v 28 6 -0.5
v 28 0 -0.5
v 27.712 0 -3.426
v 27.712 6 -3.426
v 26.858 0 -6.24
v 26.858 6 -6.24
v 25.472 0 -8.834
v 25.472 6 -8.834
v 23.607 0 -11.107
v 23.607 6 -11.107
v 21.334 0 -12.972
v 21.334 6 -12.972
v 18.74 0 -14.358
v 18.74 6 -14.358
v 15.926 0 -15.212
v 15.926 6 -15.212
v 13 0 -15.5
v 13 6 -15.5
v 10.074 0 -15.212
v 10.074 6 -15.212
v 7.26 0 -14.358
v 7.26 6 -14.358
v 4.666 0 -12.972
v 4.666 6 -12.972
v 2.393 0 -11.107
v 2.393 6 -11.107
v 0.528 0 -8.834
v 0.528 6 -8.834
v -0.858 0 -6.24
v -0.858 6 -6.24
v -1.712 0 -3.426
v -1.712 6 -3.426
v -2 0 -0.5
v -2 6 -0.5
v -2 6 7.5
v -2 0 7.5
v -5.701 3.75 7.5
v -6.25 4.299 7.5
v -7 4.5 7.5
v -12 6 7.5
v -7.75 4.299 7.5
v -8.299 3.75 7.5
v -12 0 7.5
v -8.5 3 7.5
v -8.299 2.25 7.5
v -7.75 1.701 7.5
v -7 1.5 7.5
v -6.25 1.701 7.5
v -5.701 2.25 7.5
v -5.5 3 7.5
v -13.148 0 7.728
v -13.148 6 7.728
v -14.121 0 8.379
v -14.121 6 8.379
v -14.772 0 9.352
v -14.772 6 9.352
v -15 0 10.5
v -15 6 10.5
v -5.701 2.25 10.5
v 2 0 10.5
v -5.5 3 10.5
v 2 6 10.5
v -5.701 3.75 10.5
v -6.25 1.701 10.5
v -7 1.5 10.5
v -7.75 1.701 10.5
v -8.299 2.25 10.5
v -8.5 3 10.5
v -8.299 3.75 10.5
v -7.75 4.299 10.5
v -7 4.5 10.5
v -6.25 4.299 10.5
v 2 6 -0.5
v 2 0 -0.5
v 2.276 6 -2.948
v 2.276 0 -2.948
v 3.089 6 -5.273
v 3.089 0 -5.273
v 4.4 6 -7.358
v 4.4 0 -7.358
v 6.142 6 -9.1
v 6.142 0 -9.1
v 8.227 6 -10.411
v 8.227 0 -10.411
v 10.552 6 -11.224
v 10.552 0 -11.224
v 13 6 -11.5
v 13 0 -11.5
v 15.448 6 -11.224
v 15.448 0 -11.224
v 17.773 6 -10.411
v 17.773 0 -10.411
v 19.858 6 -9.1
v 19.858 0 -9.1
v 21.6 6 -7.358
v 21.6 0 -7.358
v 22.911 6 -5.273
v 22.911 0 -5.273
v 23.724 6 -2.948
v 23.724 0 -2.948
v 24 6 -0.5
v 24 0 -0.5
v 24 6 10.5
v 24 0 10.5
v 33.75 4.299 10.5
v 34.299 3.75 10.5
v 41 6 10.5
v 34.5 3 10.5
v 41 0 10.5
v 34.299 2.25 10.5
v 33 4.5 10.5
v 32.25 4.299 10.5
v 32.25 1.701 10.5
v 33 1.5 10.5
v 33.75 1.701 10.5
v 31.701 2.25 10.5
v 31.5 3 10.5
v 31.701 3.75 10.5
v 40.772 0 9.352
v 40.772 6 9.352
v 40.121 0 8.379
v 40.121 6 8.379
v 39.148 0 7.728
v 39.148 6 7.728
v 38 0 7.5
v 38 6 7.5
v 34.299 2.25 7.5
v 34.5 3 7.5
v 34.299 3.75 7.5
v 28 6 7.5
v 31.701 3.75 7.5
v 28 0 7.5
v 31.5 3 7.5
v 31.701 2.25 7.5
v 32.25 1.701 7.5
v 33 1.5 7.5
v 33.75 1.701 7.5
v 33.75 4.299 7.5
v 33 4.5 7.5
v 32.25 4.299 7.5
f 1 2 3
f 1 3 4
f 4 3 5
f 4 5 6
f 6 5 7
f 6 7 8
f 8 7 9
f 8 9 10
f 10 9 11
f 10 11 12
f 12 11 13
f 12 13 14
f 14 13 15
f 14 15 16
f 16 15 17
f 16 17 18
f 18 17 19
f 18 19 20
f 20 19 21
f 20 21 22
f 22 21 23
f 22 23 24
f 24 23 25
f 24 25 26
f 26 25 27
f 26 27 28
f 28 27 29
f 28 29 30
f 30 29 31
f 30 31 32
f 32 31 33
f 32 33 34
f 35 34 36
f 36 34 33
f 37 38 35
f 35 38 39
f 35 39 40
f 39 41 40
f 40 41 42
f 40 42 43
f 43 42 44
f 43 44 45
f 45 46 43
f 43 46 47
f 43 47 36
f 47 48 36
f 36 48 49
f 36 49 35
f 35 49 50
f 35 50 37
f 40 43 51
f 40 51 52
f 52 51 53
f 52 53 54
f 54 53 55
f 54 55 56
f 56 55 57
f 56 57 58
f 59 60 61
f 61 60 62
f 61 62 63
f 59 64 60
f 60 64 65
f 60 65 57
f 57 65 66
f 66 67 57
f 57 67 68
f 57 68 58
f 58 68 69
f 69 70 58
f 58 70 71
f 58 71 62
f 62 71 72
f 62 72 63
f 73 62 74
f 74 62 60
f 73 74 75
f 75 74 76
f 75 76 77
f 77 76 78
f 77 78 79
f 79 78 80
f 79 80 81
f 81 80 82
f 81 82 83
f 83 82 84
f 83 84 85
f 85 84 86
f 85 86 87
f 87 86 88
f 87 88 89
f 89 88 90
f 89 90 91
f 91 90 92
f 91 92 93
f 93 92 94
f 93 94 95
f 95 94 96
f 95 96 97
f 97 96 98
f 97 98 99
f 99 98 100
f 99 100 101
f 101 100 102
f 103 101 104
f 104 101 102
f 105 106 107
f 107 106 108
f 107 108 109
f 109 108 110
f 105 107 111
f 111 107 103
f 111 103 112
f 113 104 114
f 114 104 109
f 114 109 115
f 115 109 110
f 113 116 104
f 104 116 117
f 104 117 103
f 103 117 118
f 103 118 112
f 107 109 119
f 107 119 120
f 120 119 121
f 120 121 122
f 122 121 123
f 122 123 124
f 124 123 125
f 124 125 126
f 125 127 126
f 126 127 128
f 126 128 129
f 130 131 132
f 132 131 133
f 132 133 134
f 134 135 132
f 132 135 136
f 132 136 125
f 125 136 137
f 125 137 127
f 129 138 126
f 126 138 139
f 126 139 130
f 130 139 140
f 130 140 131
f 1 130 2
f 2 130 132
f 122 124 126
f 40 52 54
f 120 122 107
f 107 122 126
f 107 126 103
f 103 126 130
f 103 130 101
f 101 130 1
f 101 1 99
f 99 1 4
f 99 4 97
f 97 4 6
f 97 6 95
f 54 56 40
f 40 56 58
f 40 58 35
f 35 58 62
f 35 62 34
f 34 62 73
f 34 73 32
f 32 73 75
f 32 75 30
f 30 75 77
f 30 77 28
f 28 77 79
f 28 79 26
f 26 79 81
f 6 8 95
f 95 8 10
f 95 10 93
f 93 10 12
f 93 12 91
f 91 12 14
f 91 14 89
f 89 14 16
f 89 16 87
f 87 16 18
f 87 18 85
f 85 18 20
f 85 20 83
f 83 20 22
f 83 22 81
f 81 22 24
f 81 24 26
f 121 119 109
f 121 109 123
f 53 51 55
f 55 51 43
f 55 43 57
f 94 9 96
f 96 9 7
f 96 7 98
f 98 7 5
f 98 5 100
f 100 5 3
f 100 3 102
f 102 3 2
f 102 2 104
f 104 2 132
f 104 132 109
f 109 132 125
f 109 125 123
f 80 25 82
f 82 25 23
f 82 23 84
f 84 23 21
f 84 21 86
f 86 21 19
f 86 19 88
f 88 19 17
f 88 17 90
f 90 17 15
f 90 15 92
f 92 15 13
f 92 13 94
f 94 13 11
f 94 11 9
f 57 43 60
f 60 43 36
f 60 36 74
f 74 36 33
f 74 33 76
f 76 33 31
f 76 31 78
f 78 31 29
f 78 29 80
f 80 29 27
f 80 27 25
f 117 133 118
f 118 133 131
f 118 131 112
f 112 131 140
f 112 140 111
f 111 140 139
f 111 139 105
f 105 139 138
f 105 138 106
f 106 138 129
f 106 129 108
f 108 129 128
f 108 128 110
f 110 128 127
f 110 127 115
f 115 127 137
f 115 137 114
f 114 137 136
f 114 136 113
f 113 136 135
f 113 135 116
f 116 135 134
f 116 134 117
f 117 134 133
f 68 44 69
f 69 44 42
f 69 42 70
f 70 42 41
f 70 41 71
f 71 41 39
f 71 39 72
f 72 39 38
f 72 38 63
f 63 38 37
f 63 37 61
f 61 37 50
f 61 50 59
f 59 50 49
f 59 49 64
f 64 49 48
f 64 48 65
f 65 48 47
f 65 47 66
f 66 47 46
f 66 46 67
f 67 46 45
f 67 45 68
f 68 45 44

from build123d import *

# Parameters (mm, degrees)
BOSS_EXTRU_2_DEPTH      = 6
ESQUISSE3_R             = 1.5
ENL_V_MAT_EXTRU_1_DEPTH = 48.391982444


with BuildPart() as part:
    # Esquisse1 → Boss.-Extru.2 (new body)
    with BuildSketch(Plane(origin=(0, 0, 0), x_dir=(1, 0, 0), z_dir=(0, 1, 0))):
        with BuildLine():
            Line((24, 0.5), (24, -10.5))
            Line((24, -10.5), (41, -10.5))
            ThreePointArc((41, -10.5), (40.121320344, -8.378679656), (38, -7.5))
            Line((38, -7.5), (28, -7.5))
            Line((28, -7.5), (28, 0.5))
            ThreePointArc((28, 0.5), (13, 15.5), (-2, 0.5))
            Line((-2, 0.5), (-2, -7.5))
            Line((-2, -7.5), (-12, -7.5))
            ThreePointArc((-12, -7.5), (-14.121320344, -8.378679656), (-15, -10.5))
            Line((-15, -10.5), (2, -10.5))
            Line((2, -10.5), (2, 0.5))
            ThreePointArc((2, 0.5), (13, 11.5), (24, 0.5))
        make_face()
    extrude(amount=BOSS_EXTRU_2_DEPTH)

    # Esquisse3 → Enlèv. mat.-Extru.1 (cut, through all)
    with BuildSketch(Plane(origin=(0, 0, 7.5), x_dir=(-1, 0, 0), z_dir=(0, 0, -1))):
        with Locations((-33, 3)):
            Circle(ESQUISSE3_R)
        with Locations(Location((7, 3, 0), (0, 0, 180))):
            Circle(ESQUISSE3_R)
    extrude(amount=-ENL_V_MAT_EXTRU_1_DEPTH, mode=Mode.SUBTRACT)


solid = part.part
